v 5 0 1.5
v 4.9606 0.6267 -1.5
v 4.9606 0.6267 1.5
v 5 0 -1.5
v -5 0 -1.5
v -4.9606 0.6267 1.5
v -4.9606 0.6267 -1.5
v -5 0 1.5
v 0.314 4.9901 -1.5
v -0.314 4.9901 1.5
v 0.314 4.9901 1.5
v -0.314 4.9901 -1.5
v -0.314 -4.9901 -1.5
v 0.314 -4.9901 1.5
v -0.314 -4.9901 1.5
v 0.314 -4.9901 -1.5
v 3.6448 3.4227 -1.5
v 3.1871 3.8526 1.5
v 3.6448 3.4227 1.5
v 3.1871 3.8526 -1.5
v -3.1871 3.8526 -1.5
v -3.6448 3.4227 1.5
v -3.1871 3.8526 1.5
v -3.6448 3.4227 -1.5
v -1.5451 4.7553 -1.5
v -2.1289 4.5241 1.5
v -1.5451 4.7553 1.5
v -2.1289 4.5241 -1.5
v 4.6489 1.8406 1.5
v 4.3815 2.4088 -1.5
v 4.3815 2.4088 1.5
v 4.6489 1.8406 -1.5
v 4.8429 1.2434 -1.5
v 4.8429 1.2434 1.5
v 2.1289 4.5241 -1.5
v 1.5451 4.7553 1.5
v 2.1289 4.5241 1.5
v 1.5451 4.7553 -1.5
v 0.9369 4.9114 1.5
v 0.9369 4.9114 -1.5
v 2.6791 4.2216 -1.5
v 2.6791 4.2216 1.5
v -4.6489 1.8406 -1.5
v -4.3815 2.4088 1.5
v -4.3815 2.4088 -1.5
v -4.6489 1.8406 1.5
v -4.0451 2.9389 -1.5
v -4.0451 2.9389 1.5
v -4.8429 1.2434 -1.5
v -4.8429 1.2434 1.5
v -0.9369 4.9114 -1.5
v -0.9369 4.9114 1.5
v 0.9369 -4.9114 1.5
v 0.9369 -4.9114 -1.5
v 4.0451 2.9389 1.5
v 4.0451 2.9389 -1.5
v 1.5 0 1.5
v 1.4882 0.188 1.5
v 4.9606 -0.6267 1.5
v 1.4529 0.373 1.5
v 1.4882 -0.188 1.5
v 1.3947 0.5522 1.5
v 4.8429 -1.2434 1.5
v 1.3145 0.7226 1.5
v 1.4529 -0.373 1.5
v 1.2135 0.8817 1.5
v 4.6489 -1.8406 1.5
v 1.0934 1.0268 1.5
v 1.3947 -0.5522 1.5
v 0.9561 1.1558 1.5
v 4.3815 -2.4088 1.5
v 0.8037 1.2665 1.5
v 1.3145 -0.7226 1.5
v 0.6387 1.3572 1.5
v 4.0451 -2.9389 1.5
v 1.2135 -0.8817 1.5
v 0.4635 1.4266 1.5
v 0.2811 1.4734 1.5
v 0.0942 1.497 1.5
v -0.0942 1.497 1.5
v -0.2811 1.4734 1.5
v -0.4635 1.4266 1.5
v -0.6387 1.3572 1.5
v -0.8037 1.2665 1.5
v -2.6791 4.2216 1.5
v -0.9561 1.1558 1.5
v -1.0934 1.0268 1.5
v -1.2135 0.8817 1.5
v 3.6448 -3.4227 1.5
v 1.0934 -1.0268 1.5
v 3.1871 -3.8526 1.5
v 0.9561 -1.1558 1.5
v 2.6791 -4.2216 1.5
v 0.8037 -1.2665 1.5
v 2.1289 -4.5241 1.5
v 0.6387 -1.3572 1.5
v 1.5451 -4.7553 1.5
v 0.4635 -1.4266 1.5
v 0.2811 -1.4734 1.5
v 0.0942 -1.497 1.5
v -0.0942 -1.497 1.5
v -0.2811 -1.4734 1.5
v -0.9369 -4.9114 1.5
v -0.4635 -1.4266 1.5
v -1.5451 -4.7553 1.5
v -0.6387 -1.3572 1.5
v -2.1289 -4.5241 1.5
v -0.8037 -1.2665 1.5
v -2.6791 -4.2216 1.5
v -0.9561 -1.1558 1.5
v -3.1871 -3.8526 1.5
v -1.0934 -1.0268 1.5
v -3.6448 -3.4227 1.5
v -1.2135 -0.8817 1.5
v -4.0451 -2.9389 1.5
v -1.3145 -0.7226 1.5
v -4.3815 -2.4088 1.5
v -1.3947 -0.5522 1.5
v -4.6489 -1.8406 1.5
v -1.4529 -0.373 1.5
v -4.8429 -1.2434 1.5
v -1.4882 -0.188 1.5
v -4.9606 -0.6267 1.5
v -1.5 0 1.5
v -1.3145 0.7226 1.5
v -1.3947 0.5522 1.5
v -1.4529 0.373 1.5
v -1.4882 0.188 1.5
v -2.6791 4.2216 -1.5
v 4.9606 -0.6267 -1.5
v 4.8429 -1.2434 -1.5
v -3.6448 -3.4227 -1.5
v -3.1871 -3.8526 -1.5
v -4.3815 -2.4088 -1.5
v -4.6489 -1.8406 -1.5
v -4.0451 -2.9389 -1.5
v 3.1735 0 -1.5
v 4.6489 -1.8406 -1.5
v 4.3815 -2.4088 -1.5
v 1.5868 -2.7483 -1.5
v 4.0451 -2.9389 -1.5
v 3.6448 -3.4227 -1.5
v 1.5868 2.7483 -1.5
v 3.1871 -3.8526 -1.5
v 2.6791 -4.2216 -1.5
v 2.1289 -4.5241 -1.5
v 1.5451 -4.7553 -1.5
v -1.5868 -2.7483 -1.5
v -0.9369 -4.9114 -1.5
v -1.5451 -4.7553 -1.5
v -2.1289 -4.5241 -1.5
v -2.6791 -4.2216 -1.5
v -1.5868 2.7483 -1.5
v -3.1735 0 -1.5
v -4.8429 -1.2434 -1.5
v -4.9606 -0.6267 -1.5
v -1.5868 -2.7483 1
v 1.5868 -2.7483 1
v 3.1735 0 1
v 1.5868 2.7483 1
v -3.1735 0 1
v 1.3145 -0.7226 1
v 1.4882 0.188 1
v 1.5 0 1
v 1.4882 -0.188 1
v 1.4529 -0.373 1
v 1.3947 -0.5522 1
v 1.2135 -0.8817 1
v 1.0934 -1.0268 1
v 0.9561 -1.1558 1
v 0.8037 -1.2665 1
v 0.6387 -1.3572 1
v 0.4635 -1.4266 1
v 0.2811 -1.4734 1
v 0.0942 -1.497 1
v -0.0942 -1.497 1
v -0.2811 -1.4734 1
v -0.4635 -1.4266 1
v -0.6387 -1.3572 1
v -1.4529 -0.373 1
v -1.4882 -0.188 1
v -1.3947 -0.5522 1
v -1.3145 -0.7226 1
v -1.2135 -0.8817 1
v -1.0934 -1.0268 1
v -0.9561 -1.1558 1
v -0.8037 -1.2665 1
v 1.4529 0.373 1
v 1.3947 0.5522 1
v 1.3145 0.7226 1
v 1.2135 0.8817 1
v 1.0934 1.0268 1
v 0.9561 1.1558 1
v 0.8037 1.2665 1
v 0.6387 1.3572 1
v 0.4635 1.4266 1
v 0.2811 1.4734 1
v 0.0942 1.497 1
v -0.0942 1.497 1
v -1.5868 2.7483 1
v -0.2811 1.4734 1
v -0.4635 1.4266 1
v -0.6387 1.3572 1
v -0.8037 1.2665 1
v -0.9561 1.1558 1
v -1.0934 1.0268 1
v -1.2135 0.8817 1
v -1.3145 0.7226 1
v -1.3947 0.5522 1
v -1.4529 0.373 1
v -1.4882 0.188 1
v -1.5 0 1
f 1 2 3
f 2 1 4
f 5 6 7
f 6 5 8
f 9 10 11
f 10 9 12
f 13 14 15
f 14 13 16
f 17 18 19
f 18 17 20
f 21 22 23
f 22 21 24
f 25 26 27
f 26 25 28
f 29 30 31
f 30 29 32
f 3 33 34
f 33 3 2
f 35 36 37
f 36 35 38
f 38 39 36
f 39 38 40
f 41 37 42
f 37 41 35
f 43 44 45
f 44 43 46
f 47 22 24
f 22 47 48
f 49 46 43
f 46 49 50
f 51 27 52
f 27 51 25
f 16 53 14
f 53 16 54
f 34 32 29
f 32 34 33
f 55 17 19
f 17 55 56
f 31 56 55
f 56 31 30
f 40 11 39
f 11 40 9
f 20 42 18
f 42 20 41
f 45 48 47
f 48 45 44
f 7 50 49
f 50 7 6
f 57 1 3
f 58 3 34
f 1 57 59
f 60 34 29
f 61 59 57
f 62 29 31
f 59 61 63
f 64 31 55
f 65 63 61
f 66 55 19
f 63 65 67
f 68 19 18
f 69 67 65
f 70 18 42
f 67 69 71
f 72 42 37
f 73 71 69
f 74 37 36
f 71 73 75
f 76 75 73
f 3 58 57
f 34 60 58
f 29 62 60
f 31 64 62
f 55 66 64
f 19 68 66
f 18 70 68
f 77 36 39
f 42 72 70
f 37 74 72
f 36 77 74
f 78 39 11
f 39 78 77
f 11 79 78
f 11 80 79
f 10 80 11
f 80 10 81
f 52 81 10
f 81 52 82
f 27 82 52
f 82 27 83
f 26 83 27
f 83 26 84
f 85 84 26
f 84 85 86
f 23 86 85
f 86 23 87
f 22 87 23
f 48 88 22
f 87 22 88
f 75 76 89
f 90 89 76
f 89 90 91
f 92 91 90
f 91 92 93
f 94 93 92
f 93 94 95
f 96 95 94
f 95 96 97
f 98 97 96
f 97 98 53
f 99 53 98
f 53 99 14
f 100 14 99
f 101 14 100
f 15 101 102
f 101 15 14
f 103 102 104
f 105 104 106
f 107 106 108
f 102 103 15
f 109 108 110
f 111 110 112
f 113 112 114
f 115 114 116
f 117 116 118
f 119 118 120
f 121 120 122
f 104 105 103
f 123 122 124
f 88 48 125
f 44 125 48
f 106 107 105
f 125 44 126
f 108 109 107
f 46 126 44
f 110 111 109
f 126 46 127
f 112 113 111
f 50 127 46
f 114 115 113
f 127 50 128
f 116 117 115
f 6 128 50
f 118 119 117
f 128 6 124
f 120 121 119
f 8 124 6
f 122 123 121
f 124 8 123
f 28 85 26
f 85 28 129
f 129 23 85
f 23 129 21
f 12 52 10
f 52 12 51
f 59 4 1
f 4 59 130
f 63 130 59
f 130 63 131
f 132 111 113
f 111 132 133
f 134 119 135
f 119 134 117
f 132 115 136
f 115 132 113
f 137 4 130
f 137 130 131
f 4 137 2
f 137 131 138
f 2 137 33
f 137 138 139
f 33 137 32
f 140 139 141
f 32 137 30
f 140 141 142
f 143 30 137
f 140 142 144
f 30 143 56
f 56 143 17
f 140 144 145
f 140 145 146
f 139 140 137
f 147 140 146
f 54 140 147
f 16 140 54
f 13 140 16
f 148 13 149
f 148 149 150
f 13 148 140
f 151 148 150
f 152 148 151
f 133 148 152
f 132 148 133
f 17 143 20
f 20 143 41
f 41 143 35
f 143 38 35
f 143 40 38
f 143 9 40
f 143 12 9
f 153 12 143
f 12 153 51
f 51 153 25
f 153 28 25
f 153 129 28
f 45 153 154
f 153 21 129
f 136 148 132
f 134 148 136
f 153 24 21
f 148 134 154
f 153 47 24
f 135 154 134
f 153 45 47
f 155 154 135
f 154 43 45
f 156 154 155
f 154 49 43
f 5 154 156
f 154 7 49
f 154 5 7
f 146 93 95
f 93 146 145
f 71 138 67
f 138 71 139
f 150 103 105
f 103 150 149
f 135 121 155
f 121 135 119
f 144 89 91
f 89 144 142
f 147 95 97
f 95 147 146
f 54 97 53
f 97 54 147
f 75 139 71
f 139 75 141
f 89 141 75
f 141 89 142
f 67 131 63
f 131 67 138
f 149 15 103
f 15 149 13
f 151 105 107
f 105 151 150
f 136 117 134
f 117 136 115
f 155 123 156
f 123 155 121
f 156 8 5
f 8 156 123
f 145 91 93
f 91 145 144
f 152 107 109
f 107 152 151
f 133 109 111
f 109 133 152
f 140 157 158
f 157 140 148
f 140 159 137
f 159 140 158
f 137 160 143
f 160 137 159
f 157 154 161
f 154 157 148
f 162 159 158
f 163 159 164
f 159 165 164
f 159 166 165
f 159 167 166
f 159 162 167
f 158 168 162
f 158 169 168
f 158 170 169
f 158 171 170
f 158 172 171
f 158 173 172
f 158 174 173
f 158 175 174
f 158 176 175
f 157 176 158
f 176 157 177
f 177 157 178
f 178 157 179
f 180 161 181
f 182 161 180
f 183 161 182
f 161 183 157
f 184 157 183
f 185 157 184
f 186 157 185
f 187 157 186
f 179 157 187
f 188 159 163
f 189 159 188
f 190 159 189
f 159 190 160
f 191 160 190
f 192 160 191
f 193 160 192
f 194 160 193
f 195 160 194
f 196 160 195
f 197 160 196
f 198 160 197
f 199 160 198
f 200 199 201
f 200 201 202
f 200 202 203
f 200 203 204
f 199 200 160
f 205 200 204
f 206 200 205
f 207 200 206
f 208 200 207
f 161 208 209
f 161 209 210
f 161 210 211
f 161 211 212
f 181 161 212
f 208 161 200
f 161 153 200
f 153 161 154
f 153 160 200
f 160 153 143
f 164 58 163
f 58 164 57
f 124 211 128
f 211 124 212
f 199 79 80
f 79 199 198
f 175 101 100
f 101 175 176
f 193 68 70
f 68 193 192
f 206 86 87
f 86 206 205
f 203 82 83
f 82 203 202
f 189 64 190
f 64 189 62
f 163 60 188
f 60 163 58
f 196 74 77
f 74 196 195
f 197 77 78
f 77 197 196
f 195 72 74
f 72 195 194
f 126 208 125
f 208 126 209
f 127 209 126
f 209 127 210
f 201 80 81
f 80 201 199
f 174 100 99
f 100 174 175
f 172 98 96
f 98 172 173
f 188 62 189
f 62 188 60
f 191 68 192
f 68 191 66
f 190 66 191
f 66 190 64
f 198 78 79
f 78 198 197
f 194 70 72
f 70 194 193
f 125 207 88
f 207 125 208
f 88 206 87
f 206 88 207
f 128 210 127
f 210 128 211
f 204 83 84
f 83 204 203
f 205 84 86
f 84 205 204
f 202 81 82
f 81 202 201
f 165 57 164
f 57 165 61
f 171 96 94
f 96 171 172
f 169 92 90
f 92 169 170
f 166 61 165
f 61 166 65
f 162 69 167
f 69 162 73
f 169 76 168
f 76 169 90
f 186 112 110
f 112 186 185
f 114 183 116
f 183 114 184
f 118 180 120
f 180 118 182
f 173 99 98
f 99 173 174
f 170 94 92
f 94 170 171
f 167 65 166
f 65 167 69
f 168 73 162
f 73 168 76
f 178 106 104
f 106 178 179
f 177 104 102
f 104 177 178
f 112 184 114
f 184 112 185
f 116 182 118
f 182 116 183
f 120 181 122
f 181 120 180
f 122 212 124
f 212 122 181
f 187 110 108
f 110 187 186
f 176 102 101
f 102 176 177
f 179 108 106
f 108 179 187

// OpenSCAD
$fn = 50;


difference() {
	union() {
		translate(v = [0, 0, -1.5000000000]) {
			cylinder(h = 3, r = 5.0000000000);
		}
		translate(v = [0, 0, -1.5000000000]) {
			cylinder(h = 3, r = 3.0000000000);
		}
	}
	union() {
		translate(v = [0, 0, -1.5000000000]) {
			rotate(a = [0, 0, 0]) {
				difference() {
					union() {
						linear_extrude(height = 2.5000000000) {
							polygon(points = [[3.1735000000, 0.0000000000], [1.5867500000, 2.7483316189], [-1.5867500000, 2.7483316189], [-3.1735000000, 0.0000000000], [-1.5867500000, -2.7483316189], [1.5867500000, -2.7483316189]]);
						}
					}
					union();
				}
			}
		}
		translate(v = [0, 0, -50.0000000000]) {
			cylinder(h = 100, r = 1.5000000000);
		}
	}
}
